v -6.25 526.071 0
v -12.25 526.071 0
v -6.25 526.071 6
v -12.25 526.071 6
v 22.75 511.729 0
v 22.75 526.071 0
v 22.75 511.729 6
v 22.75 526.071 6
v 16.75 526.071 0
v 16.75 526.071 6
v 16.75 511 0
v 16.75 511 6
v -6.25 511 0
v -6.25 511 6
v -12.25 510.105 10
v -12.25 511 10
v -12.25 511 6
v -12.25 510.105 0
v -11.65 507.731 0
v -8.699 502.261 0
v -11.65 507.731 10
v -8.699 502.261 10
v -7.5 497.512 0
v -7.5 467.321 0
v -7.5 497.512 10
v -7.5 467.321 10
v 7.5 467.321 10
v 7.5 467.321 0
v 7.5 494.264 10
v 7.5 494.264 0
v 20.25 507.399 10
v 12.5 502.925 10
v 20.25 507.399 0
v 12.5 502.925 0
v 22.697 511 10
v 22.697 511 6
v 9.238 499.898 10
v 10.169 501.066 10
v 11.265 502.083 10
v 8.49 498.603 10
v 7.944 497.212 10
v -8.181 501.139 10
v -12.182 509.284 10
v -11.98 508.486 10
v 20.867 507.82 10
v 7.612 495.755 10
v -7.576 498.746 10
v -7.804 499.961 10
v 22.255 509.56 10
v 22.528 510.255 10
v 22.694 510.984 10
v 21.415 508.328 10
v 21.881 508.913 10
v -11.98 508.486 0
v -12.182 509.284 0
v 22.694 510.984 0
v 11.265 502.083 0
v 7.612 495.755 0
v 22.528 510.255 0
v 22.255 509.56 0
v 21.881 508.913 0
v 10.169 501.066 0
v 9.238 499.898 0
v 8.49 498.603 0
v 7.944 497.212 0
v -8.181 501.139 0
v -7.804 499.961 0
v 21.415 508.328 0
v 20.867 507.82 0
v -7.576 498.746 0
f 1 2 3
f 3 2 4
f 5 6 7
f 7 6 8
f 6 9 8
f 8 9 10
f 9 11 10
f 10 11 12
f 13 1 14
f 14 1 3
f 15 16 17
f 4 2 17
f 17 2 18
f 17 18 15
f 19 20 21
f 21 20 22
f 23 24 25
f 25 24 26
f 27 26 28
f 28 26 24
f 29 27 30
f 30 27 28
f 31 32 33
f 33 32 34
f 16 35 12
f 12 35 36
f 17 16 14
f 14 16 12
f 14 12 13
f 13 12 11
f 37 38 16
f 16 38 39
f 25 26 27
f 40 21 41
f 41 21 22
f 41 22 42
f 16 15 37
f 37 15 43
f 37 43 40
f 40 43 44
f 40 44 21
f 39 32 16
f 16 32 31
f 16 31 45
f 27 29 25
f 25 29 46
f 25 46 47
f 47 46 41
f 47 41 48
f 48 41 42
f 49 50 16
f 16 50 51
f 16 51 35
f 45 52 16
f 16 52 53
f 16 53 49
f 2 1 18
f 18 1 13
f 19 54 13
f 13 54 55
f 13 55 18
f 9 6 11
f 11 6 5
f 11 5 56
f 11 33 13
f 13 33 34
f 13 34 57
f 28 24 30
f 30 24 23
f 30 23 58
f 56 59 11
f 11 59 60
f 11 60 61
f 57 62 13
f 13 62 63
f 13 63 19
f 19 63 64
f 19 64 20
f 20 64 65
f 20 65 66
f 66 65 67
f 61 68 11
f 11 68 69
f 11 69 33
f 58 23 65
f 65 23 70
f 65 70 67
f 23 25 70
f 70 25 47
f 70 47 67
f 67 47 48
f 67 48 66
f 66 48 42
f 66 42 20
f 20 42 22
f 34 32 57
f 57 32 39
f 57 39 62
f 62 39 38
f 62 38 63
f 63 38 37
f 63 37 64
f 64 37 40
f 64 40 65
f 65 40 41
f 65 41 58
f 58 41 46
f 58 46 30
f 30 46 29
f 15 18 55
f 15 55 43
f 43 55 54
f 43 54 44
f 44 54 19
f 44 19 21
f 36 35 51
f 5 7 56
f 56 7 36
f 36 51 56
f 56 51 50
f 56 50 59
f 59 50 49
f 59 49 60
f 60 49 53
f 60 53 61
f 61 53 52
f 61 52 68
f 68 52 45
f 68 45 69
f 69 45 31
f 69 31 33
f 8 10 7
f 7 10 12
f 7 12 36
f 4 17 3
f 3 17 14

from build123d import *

# Parameters (mm, degrees)
BOSS_EXTRUDE1_DEPTH = 10
FILLET1_R           = 10
FILLET2_R           = 5
SKETCH2_W           = 35
SKETCH2_H           = 15.070963555
CUT_EXTRUDE1_DEPTH  = 4


with BuildPart() as part:
    # Sketch1 → Boss-Extrude1 (new body)
    with BuildSketch(Plane.XY):
        Polygon((-7.5, 467.320715151), (-7.5, 500.037974444), (-12.25, 508.842566049), (-12.25, 526.07117063), (-6.25, 526.07117063), (-6.25, 511.000207075), (16.75, 511.000207075), (16.75, 526.07117063), (22.75, 526.07117063), (22.75, 508.842566049), (7.5, 500.037974444), (7.5, 467.320715151), align=None)
    extrude(amount=BOSS_EXTRUDE1_DEPTH)

    # Fillet1
    fillet1_edges = [part.edges().sort_by_distance(p)[0] for p in [
        (7.5, 500.037974444, 5),
        (-7.5, 500.037974444, 5),
    ]]
    fillet(fillet1_edges, radius=FILLET1_R)

    # Fillet2
    fillet2_edges = [part.edges().sort_by_distance(p)[0] for p in [
        (22.75, 508.842566049, 5),
        (-12.25, 508.842566049, 5),
    ]]
    fillet(fillet2_edges, radius=FILLET2_R)

    # Sketch2 → Cut-Extrude1 (cut)
    with BuildSketch(Plane.XY.offset(10)):
        with Locations((5.25, 518.535688853)):
            Rectangle(SKETCH2_W, SKETCH2_H)
    extrude(amount=-CUT_EXTRUDE1_DEPTH, mode=Mode.SUBTRACT)


solid = part.part
